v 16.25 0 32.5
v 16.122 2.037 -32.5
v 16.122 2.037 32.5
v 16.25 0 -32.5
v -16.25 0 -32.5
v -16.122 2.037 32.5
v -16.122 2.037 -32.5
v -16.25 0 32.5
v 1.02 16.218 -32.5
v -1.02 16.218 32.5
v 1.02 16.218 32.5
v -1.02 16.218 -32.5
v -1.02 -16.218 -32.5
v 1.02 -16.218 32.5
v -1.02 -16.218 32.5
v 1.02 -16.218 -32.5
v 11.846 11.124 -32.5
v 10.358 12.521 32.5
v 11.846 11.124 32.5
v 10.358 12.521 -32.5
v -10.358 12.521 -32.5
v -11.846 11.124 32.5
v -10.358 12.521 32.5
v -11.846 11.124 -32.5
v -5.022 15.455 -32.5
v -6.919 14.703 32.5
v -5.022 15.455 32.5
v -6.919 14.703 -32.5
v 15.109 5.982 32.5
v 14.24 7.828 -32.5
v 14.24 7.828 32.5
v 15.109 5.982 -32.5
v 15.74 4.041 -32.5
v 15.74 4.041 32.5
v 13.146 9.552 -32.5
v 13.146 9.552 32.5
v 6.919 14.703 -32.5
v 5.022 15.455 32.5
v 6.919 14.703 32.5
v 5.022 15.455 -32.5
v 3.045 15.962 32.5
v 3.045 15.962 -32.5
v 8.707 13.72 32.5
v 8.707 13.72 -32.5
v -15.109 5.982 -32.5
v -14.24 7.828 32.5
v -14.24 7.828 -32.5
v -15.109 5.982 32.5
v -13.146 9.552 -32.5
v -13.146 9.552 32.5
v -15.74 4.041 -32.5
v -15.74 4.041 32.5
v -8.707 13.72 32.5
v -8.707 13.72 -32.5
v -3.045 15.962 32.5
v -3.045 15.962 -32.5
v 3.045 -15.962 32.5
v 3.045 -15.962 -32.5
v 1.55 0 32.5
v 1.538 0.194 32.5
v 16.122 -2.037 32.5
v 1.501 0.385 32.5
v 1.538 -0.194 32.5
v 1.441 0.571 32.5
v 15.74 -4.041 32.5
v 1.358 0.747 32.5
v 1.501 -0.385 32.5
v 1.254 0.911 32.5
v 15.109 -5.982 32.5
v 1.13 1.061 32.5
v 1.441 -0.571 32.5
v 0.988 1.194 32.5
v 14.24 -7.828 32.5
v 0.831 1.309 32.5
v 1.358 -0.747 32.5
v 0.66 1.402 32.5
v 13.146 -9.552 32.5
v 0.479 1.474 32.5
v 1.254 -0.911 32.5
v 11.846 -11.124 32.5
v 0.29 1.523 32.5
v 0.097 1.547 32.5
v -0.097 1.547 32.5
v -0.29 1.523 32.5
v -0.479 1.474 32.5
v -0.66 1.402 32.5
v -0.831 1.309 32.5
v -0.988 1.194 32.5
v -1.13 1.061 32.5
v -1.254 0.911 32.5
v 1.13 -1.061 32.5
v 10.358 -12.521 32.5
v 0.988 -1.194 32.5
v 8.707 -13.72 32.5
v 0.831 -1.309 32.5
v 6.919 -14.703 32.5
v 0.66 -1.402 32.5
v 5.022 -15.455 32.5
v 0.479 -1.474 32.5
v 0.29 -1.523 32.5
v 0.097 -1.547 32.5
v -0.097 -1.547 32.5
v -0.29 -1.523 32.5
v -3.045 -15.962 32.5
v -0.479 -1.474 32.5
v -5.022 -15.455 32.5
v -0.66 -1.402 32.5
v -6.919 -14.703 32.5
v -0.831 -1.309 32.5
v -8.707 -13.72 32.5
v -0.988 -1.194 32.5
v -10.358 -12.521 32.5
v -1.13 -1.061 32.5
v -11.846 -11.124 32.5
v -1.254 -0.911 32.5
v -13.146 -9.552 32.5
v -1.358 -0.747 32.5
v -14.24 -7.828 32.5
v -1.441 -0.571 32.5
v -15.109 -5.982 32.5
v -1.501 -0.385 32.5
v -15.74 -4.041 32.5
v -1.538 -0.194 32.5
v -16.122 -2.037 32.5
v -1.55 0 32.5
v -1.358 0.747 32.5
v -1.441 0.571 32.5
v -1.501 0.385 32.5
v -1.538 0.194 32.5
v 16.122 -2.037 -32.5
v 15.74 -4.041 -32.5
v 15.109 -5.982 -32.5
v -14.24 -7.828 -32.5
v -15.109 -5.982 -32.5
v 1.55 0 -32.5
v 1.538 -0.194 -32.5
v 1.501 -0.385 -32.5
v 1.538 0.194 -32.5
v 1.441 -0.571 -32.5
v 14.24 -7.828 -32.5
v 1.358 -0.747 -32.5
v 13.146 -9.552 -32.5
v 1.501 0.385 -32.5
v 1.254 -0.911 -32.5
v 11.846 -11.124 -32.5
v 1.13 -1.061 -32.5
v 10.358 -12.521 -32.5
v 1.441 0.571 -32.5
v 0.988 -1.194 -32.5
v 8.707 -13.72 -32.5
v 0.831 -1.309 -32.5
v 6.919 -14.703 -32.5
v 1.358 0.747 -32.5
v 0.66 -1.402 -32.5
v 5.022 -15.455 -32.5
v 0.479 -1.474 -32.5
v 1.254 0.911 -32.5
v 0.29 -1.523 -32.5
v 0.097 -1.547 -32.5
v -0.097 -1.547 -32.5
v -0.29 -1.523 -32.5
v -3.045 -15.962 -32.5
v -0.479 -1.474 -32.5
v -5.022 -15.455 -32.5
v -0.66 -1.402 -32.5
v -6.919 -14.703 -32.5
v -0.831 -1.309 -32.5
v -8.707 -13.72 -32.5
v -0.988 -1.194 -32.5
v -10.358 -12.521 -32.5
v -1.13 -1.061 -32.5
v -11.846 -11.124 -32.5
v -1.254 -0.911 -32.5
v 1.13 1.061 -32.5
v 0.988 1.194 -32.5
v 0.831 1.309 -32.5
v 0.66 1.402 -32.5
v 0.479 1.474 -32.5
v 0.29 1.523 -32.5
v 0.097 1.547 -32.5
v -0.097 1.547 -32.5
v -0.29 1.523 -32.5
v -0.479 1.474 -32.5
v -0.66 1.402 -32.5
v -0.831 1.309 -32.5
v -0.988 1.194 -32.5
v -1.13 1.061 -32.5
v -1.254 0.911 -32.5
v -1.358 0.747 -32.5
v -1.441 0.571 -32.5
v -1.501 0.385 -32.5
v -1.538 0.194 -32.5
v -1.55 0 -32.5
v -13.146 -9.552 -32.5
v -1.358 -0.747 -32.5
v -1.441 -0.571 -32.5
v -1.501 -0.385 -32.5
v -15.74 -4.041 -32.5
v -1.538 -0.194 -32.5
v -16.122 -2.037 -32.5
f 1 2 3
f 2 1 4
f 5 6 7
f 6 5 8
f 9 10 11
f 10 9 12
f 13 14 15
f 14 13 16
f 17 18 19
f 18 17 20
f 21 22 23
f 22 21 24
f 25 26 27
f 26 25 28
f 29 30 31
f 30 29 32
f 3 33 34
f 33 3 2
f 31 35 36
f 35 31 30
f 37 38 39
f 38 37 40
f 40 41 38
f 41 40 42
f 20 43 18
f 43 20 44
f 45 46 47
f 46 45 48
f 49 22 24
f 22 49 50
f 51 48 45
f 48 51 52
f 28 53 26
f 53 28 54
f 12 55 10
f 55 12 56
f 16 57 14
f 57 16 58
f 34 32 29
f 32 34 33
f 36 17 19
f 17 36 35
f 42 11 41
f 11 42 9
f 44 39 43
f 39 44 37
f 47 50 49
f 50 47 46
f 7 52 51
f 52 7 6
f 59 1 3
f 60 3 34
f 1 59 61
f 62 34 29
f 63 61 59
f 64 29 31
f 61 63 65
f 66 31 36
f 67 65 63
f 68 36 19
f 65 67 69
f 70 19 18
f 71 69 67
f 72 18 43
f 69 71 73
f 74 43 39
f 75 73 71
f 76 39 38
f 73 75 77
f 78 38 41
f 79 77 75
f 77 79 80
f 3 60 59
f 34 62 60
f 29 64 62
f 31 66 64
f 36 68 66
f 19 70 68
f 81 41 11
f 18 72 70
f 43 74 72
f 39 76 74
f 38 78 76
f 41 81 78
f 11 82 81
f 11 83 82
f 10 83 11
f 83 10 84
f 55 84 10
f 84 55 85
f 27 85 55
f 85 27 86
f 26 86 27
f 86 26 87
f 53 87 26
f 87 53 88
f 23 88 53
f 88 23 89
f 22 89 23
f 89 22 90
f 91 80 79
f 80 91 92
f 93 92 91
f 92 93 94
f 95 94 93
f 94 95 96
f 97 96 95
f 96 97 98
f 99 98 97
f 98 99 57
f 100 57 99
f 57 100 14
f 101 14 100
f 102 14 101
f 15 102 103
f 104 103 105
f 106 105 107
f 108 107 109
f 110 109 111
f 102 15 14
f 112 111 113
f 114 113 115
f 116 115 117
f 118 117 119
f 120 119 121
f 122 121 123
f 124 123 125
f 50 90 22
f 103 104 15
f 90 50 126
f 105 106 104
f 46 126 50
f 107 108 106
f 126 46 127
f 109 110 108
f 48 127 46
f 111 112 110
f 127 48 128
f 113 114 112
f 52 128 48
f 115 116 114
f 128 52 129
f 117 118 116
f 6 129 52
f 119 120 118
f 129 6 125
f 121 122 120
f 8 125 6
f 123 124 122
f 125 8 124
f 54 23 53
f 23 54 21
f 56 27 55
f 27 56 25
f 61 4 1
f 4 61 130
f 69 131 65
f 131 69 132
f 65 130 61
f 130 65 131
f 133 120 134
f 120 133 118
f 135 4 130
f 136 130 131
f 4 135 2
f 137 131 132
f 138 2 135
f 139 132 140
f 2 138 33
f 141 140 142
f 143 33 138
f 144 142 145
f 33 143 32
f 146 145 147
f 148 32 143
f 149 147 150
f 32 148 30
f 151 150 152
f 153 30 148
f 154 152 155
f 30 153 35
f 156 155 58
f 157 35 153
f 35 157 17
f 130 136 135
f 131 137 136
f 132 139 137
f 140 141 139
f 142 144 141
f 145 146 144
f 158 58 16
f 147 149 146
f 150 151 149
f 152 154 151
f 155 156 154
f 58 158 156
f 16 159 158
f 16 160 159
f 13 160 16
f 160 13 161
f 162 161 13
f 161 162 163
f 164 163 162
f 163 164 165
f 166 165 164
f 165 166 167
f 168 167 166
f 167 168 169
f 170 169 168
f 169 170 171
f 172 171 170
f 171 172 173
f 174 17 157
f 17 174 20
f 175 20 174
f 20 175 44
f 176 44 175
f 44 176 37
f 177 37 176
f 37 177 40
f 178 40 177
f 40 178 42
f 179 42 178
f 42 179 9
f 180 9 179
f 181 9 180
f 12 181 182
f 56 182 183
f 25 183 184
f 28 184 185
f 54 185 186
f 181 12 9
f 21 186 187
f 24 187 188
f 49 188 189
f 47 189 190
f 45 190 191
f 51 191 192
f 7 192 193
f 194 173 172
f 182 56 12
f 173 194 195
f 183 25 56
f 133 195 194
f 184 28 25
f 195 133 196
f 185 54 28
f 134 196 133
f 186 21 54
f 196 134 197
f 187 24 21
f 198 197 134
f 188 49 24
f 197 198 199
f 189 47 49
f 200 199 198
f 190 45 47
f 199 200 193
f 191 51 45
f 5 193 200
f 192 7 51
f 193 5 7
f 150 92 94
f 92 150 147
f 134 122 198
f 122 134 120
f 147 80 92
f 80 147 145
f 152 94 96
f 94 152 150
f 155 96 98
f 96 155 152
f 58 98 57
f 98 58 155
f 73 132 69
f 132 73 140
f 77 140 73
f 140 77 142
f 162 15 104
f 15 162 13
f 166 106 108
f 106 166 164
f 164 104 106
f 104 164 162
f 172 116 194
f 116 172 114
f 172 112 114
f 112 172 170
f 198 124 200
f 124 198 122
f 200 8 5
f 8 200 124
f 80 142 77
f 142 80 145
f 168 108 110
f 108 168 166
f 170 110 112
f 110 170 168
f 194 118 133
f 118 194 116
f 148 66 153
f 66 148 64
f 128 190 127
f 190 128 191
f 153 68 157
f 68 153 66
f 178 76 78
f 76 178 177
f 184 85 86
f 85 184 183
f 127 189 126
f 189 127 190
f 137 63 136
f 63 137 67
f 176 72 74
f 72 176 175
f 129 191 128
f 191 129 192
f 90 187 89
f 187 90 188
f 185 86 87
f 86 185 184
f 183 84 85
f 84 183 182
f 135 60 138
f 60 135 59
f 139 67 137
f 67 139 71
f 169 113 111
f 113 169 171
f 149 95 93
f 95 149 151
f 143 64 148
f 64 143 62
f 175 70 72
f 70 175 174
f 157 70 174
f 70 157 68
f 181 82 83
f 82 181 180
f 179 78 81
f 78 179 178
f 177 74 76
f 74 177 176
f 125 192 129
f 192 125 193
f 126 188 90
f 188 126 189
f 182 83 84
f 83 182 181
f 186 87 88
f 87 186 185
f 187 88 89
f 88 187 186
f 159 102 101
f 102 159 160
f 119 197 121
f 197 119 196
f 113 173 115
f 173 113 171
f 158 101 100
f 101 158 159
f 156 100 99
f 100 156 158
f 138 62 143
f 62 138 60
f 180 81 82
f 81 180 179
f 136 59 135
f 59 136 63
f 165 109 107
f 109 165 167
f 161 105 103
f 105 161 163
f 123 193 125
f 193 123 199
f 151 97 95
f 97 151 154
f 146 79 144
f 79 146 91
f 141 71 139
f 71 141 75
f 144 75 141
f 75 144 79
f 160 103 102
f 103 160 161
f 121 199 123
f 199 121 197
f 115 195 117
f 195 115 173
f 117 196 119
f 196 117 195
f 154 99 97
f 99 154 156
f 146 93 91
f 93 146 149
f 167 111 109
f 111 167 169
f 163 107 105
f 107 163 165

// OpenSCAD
$fn = 50;


difference() {
	union() {
		translate(v = [0, 0, -32.5000000000]) {
			cylinder(h = 65, r = 16.2500000000);
		}
	}
	union() {
		translate(v = [0, 0, -100.0000000000]) {
			cylinder(h = 200, r = 1.5500000000);
		}
	}
}
